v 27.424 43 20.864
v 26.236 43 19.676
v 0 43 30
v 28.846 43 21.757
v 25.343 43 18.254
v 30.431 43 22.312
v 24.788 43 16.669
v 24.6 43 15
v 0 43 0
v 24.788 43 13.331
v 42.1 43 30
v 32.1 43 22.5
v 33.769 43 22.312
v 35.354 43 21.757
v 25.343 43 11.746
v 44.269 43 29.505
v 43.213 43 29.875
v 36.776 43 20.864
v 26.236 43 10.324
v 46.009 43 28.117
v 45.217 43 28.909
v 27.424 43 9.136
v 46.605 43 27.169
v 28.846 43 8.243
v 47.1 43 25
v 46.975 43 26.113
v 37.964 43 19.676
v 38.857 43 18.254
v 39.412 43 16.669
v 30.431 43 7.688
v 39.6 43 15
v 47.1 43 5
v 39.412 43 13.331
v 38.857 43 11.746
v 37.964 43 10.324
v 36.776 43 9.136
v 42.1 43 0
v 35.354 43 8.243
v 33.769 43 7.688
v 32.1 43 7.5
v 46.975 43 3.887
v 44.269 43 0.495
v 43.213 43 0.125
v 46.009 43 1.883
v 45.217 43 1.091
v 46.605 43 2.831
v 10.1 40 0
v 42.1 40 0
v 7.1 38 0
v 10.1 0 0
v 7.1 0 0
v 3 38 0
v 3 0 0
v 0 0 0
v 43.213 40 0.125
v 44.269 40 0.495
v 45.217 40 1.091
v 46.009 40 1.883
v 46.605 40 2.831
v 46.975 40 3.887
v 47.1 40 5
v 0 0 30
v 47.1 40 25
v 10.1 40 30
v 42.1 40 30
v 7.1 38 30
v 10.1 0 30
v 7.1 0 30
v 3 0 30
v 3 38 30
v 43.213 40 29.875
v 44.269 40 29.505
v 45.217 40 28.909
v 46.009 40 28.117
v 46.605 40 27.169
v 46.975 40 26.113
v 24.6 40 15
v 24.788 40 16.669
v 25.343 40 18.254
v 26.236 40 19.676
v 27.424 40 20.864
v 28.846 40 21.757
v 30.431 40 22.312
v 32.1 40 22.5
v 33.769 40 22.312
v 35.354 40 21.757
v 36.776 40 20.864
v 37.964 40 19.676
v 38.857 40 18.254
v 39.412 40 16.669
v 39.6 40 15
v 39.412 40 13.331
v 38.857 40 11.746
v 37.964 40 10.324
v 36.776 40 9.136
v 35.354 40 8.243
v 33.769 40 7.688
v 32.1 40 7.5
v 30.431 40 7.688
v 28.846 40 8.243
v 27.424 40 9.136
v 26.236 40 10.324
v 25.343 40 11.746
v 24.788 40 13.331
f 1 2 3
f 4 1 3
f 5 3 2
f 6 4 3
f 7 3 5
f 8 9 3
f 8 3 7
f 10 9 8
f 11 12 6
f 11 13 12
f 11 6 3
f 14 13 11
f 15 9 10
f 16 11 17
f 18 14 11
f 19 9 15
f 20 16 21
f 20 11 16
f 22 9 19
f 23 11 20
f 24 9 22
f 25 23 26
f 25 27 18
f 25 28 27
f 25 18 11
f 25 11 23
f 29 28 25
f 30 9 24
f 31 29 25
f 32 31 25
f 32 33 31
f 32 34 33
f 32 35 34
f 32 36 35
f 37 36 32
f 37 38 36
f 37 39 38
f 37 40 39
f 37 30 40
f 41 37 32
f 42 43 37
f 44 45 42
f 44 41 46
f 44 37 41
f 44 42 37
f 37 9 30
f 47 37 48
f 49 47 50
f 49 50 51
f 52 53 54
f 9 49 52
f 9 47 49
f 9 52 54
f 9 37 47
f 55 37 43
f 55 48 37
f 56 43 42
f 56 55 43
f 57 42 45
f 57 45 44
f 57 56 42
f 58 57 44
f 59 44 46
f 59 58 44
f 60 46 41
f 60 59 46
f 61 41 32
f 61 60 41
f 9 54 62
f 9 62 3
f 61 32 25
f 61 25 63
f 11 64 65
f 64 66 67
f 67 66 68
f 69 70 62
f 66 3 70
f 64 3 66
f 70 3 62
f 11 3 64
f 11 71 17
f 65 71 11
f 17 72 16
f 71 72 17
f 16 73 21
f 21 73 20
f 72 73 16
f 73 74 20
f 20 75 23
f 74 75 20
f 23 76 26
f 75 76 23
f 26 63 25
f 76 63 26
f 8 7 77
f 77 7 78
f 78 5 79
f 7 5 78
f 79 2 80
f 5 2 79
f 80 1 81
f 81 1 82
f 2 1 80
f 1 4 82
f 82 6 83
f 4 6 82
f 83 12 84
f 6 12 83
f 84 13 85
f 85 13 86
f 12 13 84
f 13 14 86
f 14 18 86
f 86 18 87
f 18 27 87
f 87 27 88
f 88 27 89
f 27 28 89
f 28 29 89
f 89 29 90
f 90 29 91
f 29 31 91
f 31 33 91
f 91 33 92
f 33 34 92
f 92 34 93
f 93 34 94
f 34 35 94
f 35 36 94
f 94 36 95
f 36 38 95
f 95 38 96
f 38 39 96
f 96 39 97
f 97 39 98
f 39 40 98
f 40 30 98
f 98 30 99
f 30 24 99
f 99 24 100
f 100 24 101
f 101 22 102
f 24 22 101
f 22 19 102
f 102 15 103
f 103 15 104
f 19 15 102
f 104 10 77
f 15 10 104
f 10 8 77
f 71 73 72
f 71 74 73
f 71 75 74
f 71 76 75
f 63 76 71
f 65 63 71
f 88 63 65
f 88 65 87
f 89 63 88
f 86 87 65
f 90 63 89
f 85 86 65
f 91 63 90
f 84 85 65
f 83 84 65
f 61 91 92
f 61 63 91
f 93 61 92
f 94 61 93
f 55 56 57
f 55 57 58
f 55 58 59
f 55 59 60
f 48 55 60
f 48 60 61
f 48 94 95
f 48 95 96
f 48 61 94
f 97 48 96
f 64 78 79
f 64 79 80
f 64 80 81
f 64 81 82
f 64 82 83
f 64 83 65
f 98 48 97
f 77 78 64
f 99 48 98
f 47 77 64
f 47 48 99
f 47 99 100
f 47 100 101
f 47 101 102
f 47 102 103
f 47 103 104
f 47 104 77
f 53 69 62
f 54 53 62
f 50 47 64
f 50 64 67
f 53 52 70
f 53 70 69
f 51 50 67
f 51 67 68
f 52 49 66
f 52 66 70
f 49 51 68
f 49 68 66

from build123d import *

# Parameters (mm, degrees)
PAD_DEPTH    = 30
SKETCH001_R  = 7.5
POCKET_DEPTH = 5
FILLET_R     = 5


with BuildPart() as part:
    # Sketch → Pad (new body)
    with BuildSketch(Plane.XY):
        Polygon((0, 0), (0, 43), (47.1, 43), (47.1, 40), (10.1, 40), (10.1, 0), (7.1, 0), (7.1, 38), (3, 38), (3, 0), align=None)
    extrude(amount=PAD_DEPTH)

    # Sketch001 (on Face2 of Pad) → Pocket (cut)
    with BuildSketch(Plane(origin=(0, 43, 0), x_dir=(-1, 0, 0), z_dir=(0, 1, 0))):
        with Locations((-32.1, 15)):
            Circle(SKETCH001_R)
    extrude(amount=-POCKET_DEPTH, mode=Mode.SUBTRACT)

    # Fillet
    fillet_edges = [part.edges().sort_by_distance(p)[0] for p in [
        (47.1, 41.5, 0),
        (47.1, 41.5, 30),
    ]]
    fillet(fillet_edges, radius=FILLET_R)


solid = part.part
